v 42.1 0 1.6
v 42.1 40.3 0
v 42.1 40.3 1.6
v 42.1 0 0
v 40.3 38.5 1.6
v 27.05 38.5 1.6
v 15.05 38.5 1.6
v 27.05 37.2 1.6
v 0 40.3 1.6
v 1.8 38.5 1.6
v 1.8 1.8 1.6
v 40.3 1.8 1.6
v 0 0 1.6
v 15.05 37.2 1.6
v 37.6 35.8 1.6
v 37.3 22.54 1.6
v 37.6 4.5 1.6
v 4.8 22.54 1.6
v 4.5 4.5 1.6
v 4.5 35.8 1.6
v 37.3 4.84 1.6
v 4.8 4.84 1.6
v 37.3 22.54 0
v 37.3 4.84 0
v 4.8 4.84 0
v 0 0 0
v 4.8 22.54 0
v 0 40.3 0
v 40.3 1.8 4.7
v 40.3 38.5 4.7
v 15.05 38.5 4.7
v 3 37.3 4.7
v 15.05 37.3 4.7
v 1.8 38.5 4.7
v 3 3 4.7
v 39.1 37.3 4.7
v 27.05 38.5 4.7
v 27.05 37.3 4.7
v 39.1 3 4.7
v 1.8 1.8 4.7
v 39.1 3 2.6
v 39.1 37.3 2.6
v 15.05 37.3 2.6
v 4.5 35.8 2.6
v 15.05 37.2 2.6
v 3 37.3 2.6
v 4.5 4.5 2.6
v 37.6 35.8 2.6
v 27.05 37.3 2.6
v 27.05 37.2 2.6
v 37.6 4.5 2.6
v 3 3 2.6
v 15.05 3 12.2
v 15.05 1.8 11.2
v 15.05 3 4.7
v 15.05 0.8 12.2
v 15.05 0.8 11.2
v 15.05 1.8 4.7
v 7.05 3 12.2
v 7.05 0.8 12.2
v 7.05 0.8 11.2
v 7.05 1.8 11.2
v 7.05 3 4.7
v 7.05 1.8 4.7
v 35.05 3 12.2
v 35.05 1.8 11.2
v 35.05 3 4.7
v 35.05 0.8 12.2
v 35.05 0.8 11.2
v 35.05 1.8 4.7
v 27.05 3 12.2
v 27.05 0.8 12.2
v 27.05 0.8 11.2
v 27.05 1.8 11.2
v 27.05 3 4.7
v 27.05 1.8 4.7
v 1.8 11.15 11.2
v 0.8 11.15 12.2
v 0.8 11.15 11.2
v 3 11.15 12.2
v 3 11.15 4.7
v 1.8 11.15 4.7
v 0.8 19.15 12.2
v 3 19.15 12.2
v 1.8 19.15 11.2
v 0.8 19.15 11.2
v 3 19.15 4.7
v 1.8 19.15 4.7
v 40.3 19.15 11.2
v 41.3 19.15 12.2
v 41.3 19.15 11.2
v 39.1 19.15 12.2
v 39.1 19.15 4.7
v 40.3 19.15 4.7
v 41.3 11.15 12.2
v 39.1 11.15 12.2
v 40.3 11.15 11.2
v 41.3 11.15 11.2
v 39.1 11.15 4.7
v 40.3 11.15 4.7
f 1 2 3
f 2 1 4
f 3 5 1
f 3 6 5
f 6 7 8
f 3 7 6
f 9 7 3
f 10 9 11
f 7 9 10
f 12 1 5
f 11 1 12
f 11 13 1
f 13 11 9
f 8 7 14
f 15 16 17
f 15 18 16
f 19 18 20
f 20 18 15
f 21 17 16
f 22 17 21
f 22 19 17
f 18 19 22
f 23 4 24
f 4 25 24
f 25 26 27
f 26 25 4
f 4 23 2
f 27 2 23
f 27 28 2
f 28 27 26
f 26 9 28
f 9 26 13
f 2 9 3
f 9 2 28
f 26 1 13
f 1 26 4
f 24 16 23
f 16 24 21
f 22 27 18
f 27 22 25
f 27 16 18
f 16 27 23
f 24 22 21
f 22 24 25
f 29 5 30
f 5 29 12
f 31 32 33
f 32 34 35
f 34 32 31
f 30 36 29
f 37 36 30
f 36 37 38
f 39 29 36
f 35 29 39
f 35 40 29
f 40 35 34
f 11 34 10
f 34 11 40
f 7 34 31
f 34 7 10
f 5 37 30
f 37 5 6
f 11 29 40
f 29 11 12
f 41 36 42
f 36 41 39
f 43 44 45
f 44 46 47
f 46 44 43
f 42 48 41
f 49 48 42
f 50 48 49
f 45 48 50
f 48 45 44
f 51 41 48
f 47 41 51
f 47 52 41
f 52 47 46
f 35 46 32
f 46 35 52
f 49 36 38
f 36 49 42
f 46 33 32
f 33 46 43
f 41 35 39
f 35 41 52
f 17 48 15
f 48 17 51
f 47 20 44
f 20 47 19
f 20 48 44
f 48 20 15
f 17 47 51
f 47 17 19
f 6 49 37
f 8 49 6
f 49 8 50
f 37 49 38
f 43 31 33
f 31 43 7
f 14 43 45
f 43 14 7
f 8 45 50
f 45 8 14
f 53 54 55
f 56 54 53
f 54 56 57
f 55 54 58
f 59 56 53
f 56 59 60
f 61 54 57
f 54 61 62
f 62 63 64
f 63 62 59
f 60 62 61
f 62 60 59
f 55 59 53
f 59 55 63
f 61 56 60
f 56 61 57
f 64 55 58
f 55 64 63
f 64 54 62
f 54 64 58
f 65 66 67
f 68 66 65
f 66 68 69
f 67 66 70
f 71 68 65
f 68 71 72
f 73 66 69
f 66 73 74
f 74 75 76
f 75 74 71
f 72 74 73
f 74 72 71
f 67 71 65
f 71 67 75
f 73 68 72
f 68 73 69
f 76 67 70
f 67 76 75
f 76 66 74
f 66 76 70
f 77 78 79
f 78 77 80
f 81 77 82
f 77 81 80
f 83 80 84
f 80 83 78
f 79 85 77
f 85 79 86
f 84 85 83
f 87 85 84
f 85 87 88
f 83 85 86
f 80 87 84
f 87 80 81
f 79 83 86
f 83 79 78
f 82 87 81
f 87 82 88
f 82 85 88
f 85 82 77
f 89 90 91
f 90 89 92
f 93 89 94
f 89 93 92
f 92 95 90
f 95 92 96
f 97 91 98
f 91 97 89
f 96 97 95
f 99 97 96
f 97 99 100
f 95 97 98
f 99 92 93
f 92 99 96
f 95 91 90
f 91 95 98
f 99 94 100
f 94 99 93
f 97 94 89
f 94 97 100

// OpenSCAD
// OLED 1.3" Snap-Fit Panel Bezel
// For Milk Depot Coffee Roaster enclosure lid
//
// Mounts a 1.3" SH1106/SSD1306 I2C OLED display into a rectangular
// cutout on the enclosure lid. The bezel sits on the outside, snap
// tabs grip behind the lid.
//
// Print settings: 0.2mm layer height, no supports needed,
// PLA or PETG, 100% infill on snap tabs for strength.

// === PARAMETERS (all in mm) ===

// OLED module dimensions (from datasheet)
pcb_w = 35.5;       // PCB width
pcb_h = 33.7;       // PCB height
pcb_t = 1.6;        // PCB thickness (just the board)
view_w = 31.5;      // Viewable area width
view_h = 16.7;      // Viewable area height

// The OLED glass/viewable area is offset from center of PCB.
// From the datasheet: glass is near the bottom of the PCB,
// with the header pins at the top.
// Vertical offset of viewable area center from PCB center:
// PCB center is at 33.7/2 = 16.85mm from bottom
// View area center is at 3.04 + 14.70/2 = 10.39mm from bottom
// So offset = 16.85 - 10.39 = 6.46mm (view area is below PCB center)
view_offset_y = 6.46;

// Header pins protrude from the top edge of the PCB.
// We need clearance in the bezel for them.
pin_clearance_w = 12;  // width of pin header area
pin_clearance_h = 3;   // how far pins extend beyond PCB edge

// Enclosure lid
lid_t = 2.5;         // lid thickness (typical ABS project box)

// Bezel design
bezel_border = 3.0;  // border width around the window
bezel_t = 1.6;       // bezel face thickness
pcb_clearance = 0.3; // gap around PCB for easy insertion

// Snap tab design
tab_w = 8;           // width of each snap tab
tab_depth = 5;       // how far tabs extend behind the lid
tab_t = 1.2;         // tab wall thickness
hook_h = 1.0;        // hook overhang that grips behind lid
hook_angle = 35;     // lead-in angle for easy insertion

// PCB shelf (ledge the PCB rests on inside the bezel)
shelf_w = 1.5;       // shelf width (inward from pocket wall)
shelf_depth = 1.0;   // shelf thickness below PCB

// === DERIVED DIMENSIONS ===

pocket_w = pcb_w + pcb_clearance * 2;
pocket_h = pcb_h + pcb_clearance * 2;

outer_w = pocket_w + bezel_border * 2;
outer_h = pocket_h + bezel_border * 2;

// Window in the bezel face (slightly larger than viewable area)
window_w = view_w + 1.0;
window_h = view_h + 1.0;

// Total depth behind the bezel face: shelf + PCB + lid + snap hook
total_depth = bezel_t + shelf_depth + pcb_t + lid_t + tab_depth;

// === MODULES ===

module bezel_face() {
    // Front face with window cutout
    difference() {
        cube([outer_w, outer_h, bezel_t]);

        // Window opening, offset to match viewable area position
        translate([
            outer_w/2 - window_w/2,
            outer_h/2 - window_h/2 - view_offset_y,
            -0.1
        ])
        cube([window_w, window_h, bezel_t + 0.2]);
    }
}

module pcb_pocket() {
    // Walls that form the pocket for the PCB
    pocket_depth = shelf_depth + pcb_t + 0.5;  // slight extra clearance

    difference() {
        // Outer pocket walls
        translate([bezel_border - tab_t, bezel_border - tab_t, bezel_t])
        cube([pocket_w + tab_t*2, pocket_h + tab_t*2, pocket_depth]);

        // Inner pocket (PCB sits here)
        translate([bezel_border, bezel_border, bezel_t + shelf_depth])
        cube([pocket_w, pocket_h, pocket_depth + 0.1]);

        // Shelf cutout — remove inner portion but leave shelf_w ledge
        translate([
            bezel_border + shelf_w,
            bezel_border + shelf_w,
            bezel_t - 0.1
        ])
        cube([
            pocket_w - shelf_w*2,
            pocket_h - shelf_w*2,
            shelf_depth + 0.2
        ]);

        // Pin header clearance notch at the top of the pocket
        translate([
            outer_w/2 - pin_clearance_w/2,
            outer_h - bezel_border - 0.1,
            bezel_t - 0.1
        ])
        cube([pin_clearance_w, bezel_border + tab_t + 0.2, pocket_depth + 0.2]);
    }
}

module snap_tab(length) {
    // Single cantilever snap tab with hook
    // Oriented along Z axis, hook at the bottom (max Z)

    tab_total = lid_t + tab_depth;

    // Main cantilever beam
    cube([tab_w, tab_t, tab_total]);

    // Hook at the end (angled lead-in + flat grip)
    translate([0, -hook_h, tab_total - hook_h])
    difference() {
        cube([tab_w, tab_t + hook_h, hook_h]);

        // Angled lead-in chamfer
        translate([-0.1, 0, hook_h])
        rotate([hook_angle, 0, 0])
        cube([tab_w + 0.2, (tab_t + hook_h) * 2, hook_h * 2]);
    }
}

module snap_tabs() {
    pcb_pocket_depth = shelf_depth + pcb_t + 0.5;
    tab_z = bezel_t + pcb_pocket_depth;

    // Left tab
    translate([outer_w/2 - tab_w/2 - 10, bezel_border - tab_t, tab_z])
    rotate([0, 0, 0])
    snap_tab(tab_w);

    // Right tab
    translate([outer_w/2 - tab_w/2 + 10, bezel_border - tab_t, tab_z])
    rotate([0, 0, 0])
    snap_tab(tab_w);

    // Bottom tab (opposite side from pins)
    translate([bezel_border - tab_t, outer_h/2 - tab_w/2 - 5, tab_z])
    rotate([0, 0, -90])
    translate([-tab_w, 0, 0])
    snap_tab(tab_w);

    // Top tab (near pins — shorter to avoid pin interference)
    translate([outer_w - bezel_border + tab_t, outer_h/2 - tab_w/2 - 5, tab_z])
    rotate([0, 0, 90])
    snap_tab(tab_w);
}

// === ASSEMBLY ===

// Print orientation: bezel face down on bed (face is the flat pretty side)
// Snap tabs point upward

color("DarkSlateGray") {
    bezel_face();
    pcb_pocket();
    snap_tabs();
}

// === CUTOUT TEMPLATE (for marking the lid) ===
// Uncomment to render just the cutout shape for the lid

// module lid_cutout_template() {
//     // This is the rectangular hole to cut in the enclosure lid
//     // Print this flat and use as a drilling/cutting template
//     difference() {
//         translate([-5, -5, 0])
//         cube([pocket_w + 10 + tab_t*2, pocket_h + 10 + tab_t*2, 0.6]);
//
//         translate([5, 5, -0.1])
//         cube([pocket_w + tab_t*2, pocket_h + tab_t*2, 0.8]);
//     }
//     // Center crosshair
//     translate([5 + (pocket_w + tab_t*2)/2 - 0.3, -5, 0])
//     cube([0.6, pocket_h + 10 + tab_t*2, 0.6]);
//     translate([-5, 5 + (pocket_h + tab_t*2)/2 - 0.3, 0])
//     cube([pocket_w + 10 + tab_t*2, 0.6, 0.6]);
// }
// lid_cutout_template();
